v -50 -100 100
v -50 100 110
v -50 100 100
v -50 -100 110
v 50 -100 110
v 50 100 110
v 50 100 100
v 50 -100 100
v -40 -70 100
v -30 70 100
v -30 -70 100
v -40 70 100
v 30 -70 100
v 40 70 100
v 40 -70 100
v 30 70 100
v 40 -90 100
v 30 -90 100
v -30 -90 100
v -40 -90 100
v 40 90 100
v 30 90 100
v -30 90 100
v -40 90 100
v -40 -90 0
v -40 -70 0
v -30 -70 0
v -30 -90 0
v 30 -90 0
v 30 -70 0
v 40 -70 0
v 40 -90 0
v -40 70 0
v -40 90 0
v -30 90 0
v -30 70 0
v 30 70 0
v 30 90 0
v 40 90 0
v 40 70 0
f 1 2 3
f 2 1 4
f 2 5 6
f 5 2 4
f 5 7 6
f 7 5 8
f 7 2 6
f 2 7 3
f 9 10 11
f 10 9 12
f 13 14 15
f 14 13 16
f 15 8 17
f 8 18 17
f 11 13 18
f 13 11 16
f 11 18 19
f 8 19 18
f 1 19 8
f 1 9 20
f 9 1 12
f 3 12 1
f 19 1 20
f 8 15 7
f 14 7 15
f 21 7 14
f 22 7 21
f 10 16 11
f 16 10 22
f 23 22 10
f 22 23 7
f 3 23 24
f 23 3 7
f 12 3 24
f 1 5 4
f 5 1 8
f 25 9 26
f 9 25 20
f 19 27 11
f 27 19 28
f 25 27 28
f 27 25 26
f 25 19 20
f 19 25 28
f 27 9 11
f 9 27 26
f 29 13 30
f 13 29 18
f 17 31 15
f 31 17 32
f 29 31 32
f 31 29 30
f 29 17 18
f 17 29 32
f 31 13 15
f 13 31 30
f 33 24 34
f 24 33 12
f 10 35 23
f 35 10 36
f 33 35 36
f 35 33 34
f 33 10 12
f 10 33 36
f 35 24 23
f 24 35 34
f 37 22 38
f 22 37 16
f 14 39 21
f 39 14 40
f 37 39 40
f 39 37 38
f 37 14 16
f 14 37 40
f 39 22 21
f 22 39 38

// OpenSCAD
union(){
    cube(size=[0, 0, 0]);
    translate(v=[-50, -100, 100]){
        color(""){
            cube(size=[100, 200, 10]);
        };
    };
    translate(v=[-40, -90, 0]){
        color(""){
            cube(size=[10, 20, 100]);
        };
    };
    translate(v=[30, -90, 0]){
        color(""){
            cube(size=[10, 20, 100]);
        };
    };
    translate(v=[-40, 70, 0]){
        color(""){
            cube(size=[10, 20, 100]);
        };
    };
    translate(v=[30, 70, 0]){
        color(""){
            cube(size=[10, 20, 100]);
        };
    };
};
